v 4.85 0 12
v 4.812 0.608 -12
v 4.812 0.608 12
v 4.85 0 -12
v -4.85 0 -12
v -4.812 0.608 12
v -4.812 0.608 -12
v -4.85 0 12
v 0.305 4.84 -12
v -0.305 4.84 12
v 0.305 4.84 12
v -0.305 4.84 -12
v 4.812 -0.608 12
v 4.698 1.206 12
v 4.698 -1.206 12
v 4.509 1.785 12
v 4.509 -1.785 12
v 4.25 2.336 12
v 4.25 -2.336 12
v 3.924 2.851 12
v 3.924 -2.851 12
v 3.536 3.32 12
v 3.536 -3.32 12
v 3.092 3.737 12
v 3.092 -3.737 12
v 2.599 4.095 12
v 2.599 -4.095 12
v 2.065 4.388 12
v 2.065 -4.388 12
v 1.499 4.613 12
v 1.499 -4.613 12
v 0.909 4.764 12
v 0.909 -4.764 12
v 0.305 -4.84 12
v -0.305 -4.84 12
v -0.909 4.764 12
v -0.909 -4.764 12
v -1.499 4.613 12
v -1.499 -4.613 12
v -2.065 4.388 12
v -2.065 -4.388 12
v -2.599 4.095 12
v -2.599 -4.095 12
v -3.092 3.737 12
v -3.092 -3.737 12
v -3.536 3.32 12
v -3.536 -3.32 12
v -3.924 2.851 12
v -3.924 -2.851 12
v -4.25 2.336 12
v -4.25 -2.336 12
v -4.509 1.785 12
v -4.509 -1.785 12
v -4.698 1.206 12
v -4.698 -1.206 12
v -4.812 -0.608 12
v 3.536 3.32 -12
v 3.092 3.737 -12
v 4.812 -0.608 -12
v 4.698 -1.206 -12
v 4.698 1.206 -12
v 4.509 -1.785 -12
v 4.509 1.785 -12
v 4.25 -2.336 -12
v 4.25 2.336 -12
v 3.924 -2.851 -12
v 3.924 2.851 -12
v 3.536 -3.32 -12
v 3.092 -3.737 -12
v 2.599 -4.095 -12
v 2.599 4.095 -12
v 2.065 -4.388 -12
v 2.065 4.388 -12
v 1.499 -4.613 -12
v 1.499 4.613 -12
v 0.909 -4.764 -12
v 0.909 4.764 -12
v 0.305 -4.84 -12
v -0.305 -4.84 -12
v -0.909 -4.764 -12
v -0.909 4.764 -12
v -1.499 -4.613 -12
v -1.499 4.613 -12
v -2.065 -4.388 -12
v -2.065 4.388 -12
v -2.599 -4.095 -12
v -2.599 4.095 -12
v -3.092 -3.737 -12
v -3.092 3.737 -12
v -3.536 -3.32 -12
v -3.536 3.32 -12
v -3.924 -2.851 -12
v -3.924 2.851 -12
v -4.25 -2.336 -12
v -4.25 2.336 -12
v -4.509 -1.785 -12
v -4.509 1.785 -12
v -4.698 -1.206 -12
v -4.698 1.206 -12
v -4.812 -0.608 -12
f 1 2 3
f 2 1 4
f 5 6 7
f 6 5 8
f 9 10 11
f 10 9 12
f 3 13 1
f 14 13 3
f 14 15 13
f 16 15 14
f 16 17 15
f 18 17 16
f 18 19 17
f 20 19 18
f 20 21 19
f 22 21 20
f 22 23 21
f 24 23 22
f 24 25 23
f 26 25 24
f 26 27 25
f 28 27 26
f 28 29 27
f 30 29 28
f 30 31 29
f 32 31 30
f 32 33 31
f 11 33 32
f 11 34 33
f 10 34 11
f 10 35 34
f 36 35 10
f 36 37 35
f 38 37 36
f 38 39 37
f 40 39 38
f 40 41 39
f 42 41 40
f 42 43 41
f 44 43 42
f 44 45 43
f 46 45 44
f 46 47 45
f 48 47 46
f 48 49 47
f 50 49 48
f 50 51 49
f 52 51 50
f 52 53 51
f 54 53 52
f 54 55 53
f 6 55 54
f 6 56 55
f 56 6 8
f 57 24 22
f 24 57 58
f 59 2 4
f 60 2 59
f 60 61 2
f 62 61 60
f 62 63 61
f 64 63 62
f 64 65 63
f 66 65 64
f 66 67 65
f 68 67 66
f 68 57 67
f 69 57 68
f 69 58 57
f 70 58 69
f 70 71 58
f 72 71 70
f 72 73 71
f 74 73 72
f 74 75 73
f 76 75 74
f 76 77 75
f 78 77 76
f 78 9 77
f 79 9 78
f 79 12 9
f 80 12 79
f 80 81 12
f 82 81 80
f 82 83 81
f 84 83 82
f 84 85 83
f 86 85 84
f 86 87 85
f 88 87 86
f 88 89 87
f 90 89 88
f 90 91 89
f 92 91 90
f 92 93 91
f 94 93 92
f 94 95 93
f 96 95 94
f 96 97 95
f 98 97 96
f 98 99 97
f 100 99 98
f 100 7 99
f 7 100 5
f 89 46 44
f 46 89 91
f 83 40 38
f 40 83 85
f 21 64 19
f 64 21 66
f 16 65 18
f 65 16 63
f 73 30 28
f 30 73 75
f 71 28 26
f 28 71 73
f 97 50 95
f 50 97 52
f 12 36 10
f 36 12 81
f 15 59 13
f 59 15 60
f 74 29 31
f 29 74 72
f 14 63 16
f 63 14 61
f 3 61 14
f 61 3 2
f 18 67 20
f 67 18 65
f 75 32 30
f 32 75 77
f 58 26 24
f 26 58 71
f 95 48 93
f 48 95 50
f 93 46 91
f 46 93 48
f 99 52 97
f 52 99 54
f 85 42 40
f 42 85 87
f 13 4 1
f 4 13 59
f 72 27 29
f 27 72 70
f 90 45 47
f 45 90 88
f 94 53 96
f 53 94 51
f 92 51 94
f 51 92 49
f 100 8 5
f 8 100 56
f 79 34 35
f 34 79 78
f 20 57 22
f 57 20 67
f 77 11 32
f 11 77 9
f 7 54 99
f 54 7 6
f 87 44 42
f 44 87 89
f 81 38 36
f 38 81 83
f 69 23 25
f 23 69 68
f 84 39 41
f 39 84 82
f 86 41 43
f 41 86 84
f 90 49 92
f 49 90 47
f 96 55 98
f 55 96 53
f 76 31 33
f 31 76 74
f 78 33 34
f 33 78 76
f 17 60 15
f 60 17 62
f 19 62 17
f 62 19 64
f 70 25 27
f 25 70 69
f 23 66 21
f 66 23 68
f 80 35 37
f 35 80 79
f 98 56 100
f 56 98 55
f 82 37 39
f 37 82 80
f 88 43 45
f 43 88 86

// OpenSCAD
$fn = 50;


difference() {
	union() {
		translate(v = [0, 0, -12.0000000000]) {
			cylinder(h = 24, r = 4.8500000000);
		}
	}
	union() {
		translate(v = [0, 0, -100.0000000000]) {
			cylinder(h = 200, r = 0);
		}
	}
}
